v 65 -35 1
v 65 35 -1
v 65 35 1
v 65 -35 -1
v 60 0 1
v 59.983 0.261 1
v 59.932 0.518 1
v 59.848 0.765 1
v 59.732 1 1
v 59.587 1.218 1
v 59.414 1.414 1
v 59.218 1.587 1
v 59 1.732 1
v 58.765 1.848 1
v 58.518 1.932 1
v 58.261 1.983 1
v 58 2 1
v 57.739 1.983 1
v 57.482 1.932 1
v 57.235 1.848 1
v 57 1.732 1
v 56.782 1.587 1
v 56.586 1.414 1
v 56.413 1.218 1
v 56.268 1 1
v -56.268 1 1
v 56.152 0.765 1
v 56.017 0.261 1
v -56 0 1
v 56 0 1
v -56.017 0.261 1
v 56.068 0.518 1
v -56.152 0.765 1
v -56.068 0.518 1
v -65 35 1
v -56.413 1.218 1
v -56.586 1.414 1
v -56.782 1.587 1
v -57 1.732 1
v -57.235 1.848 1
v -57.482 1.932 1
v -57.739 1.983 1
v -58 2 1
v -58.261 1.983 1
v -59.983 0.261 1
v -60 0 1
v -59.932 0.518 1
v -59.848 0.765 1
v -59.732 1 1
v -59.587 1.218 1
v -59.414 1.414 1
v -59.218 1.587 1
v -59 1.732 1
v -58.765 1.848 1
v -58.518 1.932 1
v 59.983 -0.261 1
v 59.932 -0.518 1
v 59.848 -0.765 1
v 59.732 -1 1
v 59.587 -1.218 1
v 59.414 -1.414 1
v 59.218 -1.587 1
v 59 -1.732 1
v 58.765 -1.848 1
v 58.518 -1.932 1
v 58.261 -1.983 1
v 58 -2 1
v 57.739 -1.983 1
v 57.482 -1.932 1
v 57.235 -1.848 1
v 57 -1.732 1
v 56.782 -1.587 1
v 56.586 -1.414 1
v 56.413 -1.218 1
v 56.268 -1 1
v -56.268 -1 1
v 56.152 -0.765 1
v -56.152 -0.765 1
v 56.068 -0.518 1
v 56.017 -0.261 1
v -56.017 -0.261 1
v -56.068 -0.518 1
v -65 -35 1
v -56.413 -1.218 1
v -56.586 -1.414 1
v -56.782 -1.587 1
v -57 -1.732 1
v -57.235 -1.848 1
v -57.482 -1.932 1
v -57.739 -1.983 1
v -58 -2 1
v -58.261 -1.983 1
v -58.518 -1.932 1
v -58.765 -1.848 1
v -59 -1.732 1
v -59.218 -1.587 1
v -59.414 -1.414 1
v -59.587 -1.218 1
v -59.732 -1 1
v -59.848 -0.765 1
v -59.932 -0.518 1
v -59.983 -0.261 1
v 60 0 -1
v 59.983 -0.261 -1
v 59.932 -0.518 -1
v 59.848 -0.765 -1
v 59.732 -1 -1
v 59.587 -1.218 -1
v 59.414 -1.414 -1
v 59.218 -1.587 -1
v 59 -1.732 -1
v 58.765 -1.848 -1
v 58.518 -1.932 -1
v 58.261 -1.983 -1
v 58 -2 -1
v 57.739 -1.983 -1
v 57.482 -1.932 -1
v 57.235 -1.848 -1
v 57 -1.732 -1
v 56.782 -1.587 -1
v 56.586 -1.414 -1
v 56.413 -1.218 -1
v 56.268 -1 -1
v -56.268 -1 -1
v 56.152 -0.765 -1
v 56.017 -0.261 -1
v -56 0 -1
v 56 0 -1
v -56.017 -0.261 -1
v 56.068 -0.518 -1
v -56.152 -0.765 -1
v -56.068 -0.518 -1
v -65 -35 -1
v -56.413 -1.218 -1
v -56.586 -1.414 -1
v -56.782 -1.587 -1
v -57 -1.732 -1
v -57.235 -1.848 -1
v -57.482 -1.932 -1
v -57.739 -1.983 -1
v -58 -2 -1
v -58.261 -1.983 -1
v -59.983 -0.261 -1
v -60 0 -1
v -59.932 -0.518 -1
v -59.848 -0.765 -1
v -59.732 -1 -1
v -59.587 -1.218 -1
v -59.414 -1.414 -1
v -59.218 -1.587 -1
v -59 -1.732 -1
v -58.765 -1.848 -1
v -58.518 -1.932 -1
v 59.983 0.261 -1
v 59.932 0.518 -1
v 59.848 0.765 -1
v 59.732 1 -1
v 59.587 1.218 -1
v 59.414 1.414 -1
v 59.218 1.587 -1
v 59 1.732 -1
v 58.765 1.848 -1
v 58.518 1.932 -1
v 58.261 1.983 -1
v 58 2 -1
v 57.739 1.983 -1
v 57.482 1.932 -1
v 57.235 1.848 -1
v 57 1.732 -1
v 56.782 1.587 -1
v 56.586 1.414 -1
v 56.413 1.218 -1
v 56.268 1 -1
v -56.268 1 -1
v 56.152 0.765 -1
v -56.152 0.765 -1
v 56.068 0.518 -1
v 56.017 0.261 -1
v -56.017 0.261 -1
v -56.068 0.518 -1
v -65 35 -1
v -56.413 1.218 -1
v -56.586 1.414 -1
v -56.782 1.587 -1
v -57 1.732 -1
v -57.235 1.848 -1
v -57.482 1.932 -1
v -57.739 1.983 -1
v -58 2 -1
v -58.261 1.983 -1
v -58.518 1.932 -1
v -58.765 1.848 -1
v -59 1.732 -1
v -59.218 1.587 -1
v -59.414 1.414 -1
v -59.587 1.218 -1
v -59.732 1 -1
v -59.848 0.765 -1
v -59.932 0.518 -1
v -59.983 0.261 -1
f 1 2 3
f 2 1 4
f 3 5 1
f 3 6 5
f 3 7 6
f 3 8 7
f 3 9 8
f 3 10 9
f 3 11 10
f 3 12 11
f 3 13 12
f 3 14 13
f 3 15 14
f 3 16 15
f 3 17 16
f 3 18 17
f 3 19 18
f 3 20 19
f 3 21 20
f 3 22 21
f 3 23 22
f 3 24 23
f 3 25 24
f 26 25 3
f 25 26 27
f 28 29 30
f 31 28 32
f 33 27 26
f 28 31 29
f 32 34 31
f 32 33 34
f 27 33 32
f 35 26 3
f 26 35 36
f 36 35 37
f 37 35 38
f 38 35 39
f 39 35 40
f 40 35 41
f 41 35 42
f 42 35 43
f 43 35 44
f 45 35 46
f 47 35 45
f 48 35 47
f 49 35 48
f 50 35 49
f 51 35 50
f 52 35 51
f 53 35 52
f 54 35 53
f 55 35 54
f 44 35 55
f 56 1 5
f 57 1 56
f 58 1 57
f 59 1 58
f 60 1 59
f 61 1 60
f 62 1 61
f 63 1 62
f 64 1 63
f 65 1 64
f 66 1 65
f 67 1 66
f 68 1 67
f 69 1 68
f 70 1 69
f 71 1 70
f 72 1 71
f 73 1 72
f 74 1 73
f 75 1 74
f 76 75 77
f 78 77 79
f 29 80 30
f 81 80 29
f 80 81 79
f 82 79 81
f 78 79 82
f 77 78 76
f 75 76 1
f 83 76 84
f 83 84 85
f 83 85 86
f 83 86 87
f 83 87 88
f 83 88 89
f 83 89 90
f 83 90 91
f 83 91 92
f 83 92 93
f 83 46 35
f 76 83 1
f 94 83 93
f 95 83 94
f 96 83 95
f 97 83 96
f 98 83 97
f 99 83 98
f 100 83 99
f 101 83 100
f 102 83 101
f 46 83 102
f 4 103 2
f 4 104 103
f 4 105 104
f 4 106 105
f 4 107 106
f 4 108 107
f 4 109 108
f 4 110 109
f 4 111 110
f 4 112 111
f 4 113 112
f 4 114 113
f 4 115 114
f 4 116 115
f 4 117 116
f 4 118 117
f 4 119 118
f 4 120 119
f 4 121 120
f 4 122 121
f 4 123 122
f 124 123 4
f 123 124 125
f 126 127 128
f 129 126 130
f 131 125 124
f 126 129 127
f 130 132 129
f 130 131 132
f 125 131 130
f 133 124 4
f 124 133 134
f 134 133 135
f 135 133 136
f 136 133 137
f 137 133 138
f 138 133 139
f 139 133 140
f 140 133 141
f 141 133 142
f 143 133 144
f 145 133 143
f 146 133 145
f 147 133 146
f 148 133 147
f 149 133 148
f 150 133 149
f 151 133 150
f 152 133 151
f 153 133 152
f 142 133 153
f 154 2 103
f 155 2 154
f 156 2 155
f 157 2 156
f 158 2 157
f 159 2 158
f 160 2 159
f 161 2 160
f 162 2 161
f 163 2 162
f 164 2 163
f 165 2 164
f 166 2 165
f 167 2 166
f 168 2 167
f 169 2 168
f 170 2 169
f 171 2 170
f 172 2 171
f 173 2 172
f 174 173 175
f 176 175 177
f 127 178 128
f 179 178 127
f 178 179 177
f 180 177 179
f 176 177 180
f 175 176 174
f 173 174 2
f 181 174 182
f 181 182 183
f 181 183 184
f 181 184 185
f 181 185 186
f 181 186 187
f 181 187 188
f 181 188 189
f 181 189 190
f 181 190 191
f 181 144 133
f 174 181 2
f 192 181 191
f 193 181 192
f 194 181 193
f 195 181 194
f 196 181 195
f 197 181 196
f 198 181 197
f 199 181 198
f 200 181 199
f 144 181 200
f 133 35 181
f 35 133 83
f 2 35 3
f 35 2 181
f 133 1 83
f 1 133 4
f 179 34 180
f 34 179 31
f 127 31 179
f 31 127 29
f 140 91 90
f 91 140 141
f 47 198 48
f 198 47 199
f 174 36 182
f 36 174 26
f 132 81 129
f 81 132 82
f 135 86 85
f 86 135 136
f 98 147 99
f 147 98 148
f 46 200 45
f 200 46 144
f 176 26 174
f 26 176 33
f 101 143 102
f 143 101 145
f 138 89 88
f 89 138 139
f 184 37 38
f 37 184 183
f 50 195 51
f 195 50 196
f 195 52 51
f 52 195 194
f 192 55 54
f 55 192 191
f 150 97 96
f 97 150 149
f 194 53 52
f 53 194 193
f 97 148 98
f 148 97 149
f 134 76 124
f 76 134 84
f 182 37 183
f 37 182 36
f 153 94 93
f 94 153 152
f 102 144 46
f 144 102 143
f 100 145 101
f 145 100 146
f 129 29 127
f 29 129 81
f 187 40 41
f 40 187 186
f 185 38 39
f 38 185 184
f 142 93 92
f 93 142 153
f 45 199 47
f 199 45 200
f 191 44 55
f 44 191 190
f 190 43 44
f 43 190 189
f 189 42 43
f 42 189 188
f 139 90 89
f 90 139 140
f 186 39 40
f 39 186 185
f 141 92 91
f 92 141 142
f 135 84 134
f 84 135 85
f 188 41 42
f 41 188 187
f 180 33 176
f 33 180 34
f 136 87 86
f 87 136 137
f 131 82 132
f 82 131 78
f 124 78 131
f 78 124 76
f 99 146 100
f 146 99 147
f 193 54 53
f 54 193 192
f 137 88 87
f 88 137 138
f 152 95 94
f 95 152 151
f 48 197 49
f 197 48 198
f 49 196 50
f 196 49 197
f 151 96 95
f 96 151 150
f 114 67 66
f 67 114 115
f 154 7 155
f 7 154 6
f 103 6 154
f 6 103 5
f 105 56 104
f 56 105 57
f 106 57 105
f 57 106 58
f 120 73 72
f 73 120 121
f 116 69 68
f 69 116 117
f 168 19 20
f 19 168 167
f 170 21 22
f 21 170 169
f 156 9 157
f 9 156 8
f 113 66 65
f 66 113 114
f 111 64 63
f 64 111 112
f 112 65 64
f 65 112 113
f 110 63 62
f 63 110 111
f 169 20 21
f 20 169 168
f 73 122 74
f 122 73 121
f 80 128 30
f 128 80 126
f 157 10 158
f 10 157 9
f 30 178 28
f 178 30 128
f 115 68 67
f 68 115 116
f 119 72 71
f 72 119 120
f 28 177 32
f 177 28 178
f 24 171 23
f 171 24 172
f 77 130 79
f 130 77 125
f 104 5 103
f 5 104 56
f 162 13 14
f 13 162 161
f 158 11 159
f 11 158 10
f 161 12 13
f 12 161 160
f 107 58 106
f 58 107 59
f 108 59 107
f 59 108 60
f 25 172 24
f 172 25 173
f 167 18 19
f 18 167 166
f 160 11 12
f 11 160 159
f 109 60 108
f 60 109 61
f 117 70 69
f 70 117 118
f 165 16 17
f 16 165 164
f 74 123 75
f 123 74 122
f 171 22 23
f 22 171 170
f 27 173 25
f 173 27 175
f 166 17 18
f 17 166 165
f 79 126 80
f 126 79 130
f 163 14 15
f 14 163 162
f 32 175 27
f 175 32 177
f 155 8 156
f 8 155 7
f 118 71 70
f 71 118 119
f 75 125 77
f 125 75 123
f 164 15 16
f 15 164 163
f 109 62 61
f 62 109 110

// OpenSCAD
// ========================================
// a 130 x 70 x 2 mm plate with two 4 mm holes
// NeuroCAD canonical IR; dimensions are millimetres
// ========================================
$fn = 48;

difference() {
  cube(size=[130, 70, 2], center=true);
  translate([-58, 0, 0]) {
    cylinder(r=2, h=4, center=true);
  }
  translate([58, 0, 0]) {
    cylinder(r=2, h=4, center=true);
  }
}
